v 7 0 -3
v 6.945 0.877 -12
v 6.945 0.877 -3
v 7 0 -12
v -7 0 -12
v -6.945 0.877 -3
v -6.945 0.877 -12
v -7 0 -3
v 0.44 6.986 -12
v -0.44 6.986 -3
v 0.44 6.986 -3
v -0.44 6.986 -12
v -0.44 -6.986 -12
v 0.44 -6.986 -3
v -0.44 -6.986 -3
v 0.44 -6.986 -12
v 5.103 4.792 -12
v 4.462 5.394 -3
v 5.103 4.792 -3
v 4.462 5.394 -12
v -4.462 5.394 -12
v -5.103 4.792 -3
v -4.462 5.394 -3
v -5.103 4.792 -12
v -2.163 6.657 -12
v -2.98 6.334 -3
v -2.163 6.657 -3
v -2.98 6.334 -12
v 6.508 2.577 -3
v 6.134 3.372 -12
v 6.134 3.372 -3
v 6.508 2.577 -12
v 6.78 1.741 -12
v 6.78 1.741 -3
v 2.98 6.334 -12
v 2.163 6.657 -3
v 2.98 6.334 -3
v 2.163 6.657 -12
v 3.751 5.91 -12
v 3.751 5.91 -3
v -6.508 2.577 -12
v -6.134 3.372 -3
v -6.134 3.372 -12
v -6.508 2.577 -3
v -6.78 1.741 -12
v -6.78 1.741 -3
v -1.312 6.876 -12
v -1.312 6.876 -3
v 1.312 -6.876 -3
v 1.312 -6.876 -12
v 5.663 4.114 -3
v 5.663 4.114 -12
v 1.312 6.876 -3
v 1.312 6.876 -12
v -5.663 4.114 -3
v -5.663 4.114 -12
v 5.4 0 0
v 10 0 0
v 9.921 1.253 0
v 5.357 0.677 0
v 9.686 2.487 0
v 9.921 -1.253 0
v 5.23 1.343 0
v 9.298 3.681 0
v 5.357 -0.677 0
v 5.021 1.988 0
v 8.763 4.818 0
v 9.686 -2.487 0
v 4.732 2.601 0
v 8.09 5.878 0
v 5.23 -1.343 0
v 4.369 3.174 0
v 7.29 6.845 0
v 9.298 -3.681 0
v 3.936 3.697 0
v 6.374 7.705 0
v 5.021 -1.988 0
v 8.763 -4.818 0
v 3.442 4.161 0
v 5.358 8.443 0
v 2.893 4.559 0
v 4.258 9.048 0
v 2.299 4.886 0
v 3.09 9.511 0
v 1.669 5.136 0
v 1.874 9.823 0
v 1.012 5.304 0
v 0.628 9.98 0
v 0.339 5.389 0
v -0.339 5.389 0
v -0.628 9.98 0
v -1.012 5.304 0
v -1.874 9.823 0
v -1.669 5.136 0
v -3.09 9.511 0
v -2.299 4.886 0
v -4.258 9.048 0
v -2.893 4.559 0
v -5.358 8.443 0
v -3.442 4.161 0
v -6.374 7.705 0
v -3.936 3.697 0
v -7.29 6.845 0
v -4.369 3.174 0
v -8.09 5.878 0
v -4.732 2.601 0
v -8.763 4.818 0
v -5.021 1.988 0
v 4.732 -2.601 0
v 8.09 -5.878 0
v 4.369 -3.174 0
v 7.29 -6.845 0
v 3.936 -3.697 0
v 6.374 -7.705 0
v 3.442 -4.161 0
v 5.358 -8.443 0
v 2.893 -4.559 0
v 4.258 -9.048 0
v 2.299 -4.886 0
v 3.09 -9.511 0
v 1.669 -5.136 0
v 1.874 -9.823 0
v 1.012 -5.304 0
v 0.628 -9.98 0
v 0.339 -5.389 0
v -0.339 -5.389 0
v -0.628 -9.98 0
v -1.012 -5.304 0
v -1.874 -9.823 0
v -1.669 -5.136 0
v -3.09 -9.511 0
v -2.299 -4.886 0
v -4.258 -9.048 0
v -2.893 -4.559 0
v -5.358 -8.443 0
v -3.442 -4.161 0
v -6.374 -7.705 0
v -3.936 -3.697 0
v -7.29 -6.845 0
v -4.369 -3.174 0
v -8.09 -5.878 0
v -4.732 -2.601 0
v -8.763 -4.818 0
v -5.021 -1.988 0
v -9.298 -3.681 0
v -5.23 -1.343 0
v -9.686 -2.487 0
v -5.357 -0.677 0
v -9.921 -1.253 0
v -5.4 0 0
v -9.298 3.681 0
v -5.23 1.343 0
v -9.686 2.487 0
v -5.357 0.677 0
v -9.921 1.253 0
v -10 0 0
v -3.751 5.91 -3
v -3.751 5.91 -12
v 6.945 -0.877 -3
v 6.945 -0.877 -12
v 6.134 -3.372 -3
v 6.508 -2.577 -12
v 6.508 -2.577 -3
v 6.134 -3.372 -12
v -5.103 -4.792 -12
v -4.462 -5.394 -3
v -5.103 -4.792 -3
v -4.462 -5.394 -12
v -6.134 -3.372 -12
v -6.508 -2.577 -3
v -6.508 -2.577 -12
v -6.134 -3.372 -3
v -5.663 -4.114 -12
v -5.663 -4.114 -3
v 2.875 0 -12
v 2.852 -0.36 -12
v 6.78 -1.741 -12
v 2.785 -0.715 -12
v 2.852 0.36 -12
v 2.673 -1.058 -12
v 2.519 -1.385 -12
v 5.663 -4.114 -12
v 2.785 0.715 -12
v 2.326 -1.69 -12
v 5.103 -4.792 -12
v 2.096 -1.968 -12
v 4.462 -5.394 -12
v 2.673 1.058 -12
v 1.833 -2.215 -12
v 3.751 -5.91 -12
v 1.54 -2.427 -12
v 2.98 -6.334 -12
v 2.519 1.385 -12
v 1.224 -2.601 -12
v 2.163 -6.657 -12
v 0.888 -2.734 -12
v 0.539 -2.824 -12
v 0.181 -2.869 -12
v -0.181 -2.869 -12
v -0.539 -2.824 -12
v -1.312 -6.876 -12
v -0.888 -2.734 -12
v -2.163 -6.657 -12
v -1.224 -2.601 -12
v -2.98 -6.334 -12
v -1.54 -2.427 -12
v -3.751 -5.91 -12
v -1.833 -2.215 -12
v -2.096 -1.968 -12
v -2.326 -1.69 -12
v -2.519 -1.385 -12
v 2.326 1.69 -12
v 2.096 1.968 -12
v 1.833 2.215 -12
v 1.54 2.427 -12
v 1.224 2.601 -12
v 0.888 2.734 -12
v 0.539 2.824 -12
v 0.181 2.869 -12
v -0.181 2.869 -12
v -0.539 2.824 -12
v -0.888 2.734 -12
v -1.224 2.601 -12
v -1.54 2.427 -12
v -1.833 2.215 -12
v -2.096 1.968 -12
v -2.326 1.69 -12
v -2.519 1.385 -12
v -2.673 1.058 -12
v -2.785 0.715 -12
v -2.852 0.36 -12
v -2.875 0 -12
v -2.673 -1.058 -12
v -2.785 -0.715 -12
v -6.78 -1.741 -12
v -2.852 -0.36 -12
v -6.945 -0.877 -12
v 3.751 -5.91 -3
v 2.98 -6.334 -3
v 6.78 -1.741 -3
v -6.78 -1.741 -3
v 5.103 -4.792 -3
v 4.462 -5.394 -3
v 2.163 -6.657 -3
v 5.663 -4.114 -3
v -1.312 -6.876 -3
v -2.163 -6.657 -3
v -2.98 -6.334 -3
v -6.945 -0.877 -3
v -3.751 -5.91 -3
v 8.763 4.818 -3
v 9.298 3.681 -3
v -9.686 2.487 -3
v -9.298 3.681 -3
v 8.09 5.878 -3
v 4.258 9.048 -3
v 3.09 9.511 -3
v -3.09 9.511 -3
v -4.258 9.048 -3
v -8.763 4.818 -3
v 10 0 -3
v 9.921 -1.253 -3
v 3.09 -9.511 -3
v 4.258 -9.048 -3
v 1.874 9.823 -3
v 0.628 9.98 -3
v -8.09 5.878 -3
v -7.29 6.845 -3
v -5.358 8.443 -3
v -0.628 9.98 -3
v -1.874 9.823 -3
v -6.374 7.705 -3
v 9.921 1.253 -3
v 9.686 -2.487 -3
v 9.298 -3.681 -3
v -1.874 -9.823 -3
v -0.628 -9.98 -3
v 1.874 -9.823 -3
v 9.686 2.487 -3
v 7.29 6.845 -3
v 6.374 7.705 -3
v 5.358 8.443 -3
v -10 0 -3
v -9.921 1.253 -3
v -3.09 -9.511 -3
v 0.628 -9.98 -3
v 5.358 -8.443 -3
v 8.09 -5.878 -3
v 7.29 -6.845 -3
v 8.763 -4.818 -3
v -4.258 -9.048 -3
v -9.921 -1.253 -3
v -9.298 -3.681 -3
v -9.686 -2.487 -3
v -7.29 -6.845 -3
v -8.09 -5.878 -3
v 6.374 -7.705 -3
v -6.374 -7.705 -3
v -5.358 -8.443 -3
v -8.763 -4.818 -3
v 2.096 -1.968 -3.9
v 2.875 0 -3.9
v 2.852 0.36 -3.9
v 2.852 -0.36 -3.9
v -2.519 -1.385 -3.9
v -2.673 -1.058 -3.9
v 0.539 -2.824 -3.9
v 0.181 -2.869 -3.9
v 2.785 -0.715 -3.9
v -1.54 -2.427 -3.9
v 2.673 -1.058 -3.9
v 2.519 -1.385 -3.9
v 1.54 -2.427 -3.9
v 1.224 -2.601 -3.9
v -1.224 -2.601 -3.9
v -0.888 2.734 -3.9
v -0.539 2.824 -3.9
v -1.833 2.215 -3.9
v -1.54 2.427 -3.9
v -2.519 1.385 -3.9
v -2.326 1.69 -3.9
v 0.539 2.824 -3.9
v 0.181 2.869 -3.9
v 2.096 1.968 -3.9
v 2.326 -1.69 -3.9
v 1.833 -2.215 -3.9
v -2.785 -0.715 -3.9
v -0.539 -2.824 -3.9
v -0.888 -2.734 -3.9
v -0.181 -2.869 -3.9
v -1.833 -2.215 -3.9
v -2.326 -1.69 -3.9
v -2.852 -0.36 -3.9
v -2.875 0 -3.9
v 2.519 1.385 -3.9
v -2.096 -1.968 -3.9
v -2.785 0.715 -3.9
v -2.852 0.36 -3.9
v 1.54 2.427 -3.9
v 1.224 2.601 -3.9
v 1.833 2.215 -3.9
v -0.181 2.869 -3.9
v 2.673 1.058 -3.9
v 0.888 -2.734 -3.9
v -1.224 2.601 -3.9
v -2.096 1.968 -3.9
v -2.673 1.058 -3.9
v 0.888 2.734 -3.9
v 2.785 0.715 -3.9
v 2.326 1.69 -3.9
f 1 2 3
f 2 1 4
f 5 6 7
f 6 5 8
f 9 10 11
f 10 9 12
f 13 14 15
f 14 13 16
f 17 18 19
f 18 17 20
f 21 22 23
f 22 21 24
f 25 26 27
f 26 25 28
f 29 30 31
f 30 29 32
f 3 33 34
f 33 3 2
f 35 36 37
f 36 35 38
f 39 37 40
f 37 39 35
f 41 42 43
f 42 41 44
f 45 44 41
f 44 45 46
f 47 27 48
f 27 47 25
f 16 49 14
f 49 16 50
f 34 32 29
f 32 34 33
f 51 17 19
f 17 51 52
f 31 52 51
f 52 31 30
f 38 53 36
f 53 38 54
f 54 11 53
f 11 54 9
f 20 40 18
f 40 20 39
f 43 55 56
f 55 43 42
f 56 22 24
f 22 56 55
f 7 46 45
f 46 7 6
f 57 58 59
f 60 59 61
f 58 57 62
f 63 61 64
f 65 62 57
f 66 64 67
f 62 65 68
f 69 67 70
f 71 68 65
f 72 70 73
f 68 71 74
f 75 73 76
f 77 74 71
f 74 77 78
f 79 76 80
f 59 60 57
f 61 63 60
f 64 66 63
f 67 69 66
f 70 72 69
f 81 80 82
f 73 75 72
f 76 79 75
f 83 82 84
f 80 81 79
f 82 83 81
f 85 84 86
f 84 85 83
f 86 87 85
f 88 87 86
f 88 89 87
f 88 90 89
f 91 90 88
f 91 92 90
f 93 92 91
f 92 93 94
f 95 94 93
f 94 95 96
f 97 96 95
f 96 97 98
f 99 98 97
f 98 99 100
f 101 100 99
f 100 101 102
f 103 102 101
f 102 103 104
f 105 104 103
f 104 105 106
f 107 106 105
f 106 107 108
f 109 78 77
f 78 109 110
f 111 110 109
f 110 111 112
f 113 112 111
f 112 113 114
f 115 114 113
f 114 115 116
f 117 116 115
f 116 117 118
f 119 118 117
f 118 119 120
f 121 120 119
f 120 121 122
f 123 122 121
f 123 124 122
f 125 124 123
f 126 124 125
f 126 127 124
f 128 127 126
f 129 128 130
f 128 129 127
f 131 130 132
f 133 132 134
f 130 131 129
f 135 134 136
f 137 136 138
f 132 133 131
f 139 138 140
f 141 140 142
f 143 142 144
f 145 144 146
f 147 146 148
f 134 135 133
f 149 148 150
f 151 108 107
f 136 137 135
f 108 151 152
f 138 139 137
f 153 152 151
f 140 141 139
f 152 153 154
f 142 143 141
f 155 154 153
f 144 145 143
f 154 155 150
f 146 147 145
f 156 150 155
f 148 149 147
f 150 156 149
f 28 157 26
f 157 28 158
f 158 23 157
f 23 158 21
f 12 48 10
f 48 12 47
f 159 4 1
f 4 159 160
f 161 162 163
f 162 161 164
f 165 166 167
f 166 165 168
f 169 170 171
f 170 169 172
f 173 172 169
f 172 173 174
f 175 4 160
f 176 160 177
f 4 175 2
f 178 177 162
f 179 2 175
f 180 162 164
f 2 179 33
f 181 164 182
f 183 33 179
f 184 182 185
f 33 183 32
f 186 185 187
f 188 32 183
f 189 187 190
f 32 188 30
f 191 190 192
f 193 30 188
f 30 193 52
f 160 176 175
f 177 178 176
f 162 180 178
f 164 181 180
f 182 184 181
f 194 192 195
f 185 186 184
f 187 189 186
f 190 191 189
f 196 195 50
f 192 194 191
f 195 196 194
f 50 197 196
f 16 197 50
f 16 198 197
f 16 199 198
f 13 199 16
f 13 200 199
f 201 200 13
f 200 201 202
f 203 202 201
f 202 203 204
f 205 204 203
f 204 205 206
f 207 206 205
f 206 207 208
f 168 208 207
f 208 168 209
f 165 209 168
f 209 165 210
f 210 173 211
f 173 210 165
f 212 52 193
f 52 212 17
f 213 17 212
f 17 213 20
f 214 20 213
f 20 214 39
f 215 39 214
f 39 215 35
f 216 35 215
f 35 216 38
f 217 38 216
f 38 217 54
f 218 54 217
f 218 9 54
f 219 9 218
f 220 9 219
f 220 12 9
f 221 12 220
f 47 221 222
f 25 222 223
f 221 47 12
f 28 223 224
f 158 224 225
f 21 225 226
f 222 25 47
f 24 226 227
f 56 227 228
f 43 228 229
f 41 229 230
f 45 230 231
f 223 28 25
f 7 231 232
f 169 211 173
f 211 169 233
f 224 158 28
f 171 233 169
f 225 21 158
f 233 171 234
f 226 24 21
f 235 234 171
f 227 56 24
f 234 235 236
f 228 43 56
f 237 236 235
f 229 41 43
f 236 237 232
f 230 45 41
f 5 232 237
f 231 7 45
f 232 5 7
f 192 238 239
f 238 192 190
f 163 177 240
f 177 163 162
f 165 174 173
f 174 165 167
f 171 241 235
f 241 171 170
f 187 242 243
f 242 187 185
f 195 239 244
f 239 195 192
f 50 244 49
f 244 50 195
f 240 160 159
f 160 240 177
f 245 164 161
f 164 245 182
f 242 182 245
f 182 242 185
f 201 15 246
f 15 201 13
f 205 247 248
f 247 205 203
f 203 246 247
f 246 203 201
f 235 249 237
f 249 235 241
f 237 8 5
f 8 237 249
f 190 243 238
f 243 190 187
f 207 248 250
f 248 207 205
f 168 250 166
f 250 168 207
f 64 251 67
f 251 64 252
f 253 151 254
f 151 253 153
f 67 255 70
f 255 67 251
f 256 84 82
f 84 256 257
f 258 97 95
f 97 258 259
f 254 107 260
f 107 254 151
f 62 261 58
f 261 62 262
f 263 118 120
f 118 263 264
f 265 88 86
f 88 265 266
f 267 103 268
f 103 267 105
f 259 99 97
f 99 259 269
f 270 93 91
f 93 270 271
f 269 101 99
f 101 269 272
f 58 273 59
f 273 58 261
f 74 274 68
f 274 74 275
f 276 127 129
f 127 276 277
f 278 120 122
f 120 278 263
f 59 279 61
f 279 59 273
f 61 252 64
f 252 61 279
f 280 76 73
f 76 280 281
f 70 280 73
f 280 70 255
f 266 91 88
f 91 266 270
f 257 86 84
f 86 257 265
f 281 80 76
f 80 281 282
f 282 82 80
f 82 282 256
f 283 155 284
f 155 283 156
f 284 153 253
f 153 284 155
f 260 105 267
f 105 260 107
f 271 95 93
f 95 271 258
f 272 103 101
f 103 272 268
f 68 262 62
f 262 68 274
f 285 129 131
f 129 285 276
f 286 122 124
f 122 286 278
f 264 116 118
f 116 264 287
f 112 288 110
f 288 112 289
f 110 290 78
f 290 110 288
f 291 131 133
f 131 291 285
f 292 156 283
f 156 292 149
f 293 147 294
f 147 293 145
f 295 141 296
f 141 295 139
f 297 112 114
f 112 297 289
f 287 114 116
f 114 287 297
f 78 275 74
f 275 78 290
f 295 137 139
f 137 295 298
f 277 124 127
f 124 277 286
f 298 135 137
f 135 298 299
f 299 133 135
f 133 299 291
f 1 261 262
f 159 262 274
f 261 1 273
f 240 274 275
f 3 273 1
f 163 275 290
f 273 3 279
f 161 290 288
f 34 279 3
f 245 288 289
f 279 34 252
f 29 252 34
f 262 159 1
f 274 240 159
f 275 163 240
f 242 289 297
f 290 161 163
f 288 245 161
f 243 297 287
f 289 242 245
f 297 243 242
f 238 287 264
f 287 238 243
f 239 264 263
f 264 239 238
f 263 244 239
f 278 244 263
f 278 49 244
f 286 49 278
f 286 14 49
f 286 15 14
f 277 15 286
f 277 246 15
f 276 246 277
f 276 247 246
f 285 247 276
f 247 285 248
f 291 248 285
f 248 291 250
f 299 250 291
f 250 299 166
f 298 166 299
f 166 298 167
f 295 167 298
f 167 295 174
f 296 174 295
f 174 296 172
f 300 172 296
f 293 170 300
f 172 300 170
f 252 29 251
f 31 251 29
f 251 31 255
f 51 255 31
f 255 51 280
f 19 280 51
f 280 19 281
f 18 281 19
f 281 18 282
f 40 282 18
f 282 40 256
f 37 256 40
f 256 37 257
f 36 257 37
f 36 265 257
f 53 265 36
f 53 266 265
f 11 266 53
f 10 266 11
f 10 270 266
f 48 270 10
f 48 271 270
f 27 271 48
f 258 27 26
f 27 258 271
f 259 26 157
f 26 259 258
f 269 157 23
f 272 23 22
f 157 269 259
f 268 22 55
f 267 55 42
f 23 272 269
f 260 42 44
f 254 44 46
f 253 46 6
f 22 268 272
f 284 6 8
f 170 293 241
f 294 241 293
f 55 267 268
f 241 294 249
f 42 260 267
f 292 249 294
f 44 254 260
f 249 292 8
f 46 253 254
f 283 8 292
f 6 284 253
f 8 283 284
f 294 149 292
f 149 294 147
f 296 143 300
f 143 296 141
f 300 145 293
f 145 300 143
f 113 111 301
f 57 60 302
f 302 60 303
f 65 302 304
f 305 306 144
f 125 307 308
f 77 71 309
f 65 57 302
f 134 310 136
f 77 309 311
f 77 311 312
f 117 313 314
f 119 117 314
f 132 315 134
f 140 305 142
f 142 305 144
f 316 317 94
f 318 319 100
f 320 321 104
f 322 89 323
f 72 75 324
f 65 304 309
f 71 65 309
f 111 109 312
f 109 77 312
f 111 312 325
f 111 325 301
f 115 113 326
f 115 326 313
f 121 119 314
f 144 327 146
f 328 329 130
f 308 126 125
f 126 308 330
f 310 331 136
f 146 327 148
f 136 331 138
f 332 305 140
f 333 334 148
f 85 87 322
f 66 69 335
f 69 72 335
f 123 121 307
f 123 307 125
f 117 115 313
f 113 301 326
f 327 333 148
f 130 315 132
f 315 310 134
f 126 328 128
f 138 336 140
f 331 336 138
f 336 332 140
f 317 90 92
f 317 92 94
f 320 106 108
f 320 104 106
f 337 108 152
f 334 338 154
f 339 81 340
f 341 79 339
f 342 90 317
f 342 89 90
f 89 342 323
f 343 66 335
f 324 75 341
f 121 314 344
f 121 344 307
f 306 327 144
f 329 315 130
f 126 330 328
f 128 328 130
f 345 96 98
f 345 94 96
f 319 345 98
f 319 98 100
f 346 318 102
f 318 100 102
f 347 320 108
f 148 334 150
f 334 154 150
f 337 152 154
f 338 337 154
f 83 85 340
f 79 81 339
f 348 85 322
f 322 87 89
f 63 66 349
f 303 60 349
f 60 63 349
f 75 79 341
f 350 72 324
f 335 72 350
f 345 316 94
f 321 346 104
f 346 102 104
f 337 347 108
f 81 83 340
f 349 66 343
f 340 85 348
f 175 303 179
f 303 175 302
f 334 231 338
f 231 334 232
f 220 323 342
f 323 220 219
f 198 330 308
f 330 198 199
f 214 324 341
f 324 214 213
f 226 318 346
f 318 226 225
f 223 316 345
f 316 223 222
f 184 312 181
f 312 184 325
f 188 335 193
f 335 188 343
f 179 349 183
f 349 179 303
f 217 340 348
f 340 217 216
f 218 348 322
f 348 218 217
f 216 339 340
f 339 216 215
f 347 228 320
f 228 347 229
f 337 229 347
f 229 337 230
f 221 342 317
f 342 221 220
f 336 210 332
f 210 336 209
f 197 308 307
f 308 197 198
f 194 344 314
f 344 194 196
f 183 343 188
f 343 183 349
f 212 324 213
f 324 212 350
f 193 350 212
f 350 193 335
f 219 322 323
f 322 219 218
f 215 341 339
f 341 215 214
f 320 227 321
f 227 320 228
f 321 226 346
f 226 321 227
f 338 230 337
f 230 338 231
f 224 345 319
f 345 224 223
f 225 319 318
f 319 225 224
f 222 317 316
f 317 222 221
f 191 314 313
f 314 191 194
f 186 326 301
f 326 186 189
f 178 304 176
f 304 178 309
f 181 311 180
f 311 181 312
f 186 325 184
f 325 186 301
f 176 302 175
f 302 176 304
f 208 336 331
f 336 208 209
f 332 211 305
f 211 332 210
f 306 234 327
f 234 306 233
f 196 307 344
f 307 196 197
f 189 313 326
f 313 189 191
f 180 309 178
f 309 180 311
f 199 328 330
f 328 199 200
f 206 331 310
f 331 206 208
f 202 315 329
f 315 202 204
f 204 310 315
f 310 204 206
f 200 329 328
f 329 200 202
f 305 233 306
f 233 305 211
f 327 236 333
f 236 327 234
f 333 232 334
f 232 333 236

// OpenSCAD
$fn = 50;


difference() {
	union() {
		translate(v = [0, 0, -12.0000000000]) {
			cylinder(h = 12, r = 7.0000000000);
		}
		translate(v = [0, 0, -3.0000000000]) {
			cylinder(h = 3, r = 10.0000000000);
		}
	}
	union() {
		translate(v = [0, 0, 0]) {
			rotate(a = [0, 0, 0]) {
				difference() {
					union() {
						#translate(v = [0, 0, -12.0000000000]) {
							cylinder(h = 12, r = 2.6000000000);
						}
						#translate(v = [0, 0, -3.9000000000]) {
							cylinder(h = 3.9000000000, r1 = 2.8750000000, r2 = 5.4000000000);
						}
						#translate(v = [0, 0, -12.0000000000]) {
							cylinder(h = 12, r = 2.8750000000);
						}
						#translate(v = [0, 0, -12.0000000000]) {
							cylinder(h = 12, r = 2.6000000000);
						}
					}
					union();
				}
			}
		}
	}
}
